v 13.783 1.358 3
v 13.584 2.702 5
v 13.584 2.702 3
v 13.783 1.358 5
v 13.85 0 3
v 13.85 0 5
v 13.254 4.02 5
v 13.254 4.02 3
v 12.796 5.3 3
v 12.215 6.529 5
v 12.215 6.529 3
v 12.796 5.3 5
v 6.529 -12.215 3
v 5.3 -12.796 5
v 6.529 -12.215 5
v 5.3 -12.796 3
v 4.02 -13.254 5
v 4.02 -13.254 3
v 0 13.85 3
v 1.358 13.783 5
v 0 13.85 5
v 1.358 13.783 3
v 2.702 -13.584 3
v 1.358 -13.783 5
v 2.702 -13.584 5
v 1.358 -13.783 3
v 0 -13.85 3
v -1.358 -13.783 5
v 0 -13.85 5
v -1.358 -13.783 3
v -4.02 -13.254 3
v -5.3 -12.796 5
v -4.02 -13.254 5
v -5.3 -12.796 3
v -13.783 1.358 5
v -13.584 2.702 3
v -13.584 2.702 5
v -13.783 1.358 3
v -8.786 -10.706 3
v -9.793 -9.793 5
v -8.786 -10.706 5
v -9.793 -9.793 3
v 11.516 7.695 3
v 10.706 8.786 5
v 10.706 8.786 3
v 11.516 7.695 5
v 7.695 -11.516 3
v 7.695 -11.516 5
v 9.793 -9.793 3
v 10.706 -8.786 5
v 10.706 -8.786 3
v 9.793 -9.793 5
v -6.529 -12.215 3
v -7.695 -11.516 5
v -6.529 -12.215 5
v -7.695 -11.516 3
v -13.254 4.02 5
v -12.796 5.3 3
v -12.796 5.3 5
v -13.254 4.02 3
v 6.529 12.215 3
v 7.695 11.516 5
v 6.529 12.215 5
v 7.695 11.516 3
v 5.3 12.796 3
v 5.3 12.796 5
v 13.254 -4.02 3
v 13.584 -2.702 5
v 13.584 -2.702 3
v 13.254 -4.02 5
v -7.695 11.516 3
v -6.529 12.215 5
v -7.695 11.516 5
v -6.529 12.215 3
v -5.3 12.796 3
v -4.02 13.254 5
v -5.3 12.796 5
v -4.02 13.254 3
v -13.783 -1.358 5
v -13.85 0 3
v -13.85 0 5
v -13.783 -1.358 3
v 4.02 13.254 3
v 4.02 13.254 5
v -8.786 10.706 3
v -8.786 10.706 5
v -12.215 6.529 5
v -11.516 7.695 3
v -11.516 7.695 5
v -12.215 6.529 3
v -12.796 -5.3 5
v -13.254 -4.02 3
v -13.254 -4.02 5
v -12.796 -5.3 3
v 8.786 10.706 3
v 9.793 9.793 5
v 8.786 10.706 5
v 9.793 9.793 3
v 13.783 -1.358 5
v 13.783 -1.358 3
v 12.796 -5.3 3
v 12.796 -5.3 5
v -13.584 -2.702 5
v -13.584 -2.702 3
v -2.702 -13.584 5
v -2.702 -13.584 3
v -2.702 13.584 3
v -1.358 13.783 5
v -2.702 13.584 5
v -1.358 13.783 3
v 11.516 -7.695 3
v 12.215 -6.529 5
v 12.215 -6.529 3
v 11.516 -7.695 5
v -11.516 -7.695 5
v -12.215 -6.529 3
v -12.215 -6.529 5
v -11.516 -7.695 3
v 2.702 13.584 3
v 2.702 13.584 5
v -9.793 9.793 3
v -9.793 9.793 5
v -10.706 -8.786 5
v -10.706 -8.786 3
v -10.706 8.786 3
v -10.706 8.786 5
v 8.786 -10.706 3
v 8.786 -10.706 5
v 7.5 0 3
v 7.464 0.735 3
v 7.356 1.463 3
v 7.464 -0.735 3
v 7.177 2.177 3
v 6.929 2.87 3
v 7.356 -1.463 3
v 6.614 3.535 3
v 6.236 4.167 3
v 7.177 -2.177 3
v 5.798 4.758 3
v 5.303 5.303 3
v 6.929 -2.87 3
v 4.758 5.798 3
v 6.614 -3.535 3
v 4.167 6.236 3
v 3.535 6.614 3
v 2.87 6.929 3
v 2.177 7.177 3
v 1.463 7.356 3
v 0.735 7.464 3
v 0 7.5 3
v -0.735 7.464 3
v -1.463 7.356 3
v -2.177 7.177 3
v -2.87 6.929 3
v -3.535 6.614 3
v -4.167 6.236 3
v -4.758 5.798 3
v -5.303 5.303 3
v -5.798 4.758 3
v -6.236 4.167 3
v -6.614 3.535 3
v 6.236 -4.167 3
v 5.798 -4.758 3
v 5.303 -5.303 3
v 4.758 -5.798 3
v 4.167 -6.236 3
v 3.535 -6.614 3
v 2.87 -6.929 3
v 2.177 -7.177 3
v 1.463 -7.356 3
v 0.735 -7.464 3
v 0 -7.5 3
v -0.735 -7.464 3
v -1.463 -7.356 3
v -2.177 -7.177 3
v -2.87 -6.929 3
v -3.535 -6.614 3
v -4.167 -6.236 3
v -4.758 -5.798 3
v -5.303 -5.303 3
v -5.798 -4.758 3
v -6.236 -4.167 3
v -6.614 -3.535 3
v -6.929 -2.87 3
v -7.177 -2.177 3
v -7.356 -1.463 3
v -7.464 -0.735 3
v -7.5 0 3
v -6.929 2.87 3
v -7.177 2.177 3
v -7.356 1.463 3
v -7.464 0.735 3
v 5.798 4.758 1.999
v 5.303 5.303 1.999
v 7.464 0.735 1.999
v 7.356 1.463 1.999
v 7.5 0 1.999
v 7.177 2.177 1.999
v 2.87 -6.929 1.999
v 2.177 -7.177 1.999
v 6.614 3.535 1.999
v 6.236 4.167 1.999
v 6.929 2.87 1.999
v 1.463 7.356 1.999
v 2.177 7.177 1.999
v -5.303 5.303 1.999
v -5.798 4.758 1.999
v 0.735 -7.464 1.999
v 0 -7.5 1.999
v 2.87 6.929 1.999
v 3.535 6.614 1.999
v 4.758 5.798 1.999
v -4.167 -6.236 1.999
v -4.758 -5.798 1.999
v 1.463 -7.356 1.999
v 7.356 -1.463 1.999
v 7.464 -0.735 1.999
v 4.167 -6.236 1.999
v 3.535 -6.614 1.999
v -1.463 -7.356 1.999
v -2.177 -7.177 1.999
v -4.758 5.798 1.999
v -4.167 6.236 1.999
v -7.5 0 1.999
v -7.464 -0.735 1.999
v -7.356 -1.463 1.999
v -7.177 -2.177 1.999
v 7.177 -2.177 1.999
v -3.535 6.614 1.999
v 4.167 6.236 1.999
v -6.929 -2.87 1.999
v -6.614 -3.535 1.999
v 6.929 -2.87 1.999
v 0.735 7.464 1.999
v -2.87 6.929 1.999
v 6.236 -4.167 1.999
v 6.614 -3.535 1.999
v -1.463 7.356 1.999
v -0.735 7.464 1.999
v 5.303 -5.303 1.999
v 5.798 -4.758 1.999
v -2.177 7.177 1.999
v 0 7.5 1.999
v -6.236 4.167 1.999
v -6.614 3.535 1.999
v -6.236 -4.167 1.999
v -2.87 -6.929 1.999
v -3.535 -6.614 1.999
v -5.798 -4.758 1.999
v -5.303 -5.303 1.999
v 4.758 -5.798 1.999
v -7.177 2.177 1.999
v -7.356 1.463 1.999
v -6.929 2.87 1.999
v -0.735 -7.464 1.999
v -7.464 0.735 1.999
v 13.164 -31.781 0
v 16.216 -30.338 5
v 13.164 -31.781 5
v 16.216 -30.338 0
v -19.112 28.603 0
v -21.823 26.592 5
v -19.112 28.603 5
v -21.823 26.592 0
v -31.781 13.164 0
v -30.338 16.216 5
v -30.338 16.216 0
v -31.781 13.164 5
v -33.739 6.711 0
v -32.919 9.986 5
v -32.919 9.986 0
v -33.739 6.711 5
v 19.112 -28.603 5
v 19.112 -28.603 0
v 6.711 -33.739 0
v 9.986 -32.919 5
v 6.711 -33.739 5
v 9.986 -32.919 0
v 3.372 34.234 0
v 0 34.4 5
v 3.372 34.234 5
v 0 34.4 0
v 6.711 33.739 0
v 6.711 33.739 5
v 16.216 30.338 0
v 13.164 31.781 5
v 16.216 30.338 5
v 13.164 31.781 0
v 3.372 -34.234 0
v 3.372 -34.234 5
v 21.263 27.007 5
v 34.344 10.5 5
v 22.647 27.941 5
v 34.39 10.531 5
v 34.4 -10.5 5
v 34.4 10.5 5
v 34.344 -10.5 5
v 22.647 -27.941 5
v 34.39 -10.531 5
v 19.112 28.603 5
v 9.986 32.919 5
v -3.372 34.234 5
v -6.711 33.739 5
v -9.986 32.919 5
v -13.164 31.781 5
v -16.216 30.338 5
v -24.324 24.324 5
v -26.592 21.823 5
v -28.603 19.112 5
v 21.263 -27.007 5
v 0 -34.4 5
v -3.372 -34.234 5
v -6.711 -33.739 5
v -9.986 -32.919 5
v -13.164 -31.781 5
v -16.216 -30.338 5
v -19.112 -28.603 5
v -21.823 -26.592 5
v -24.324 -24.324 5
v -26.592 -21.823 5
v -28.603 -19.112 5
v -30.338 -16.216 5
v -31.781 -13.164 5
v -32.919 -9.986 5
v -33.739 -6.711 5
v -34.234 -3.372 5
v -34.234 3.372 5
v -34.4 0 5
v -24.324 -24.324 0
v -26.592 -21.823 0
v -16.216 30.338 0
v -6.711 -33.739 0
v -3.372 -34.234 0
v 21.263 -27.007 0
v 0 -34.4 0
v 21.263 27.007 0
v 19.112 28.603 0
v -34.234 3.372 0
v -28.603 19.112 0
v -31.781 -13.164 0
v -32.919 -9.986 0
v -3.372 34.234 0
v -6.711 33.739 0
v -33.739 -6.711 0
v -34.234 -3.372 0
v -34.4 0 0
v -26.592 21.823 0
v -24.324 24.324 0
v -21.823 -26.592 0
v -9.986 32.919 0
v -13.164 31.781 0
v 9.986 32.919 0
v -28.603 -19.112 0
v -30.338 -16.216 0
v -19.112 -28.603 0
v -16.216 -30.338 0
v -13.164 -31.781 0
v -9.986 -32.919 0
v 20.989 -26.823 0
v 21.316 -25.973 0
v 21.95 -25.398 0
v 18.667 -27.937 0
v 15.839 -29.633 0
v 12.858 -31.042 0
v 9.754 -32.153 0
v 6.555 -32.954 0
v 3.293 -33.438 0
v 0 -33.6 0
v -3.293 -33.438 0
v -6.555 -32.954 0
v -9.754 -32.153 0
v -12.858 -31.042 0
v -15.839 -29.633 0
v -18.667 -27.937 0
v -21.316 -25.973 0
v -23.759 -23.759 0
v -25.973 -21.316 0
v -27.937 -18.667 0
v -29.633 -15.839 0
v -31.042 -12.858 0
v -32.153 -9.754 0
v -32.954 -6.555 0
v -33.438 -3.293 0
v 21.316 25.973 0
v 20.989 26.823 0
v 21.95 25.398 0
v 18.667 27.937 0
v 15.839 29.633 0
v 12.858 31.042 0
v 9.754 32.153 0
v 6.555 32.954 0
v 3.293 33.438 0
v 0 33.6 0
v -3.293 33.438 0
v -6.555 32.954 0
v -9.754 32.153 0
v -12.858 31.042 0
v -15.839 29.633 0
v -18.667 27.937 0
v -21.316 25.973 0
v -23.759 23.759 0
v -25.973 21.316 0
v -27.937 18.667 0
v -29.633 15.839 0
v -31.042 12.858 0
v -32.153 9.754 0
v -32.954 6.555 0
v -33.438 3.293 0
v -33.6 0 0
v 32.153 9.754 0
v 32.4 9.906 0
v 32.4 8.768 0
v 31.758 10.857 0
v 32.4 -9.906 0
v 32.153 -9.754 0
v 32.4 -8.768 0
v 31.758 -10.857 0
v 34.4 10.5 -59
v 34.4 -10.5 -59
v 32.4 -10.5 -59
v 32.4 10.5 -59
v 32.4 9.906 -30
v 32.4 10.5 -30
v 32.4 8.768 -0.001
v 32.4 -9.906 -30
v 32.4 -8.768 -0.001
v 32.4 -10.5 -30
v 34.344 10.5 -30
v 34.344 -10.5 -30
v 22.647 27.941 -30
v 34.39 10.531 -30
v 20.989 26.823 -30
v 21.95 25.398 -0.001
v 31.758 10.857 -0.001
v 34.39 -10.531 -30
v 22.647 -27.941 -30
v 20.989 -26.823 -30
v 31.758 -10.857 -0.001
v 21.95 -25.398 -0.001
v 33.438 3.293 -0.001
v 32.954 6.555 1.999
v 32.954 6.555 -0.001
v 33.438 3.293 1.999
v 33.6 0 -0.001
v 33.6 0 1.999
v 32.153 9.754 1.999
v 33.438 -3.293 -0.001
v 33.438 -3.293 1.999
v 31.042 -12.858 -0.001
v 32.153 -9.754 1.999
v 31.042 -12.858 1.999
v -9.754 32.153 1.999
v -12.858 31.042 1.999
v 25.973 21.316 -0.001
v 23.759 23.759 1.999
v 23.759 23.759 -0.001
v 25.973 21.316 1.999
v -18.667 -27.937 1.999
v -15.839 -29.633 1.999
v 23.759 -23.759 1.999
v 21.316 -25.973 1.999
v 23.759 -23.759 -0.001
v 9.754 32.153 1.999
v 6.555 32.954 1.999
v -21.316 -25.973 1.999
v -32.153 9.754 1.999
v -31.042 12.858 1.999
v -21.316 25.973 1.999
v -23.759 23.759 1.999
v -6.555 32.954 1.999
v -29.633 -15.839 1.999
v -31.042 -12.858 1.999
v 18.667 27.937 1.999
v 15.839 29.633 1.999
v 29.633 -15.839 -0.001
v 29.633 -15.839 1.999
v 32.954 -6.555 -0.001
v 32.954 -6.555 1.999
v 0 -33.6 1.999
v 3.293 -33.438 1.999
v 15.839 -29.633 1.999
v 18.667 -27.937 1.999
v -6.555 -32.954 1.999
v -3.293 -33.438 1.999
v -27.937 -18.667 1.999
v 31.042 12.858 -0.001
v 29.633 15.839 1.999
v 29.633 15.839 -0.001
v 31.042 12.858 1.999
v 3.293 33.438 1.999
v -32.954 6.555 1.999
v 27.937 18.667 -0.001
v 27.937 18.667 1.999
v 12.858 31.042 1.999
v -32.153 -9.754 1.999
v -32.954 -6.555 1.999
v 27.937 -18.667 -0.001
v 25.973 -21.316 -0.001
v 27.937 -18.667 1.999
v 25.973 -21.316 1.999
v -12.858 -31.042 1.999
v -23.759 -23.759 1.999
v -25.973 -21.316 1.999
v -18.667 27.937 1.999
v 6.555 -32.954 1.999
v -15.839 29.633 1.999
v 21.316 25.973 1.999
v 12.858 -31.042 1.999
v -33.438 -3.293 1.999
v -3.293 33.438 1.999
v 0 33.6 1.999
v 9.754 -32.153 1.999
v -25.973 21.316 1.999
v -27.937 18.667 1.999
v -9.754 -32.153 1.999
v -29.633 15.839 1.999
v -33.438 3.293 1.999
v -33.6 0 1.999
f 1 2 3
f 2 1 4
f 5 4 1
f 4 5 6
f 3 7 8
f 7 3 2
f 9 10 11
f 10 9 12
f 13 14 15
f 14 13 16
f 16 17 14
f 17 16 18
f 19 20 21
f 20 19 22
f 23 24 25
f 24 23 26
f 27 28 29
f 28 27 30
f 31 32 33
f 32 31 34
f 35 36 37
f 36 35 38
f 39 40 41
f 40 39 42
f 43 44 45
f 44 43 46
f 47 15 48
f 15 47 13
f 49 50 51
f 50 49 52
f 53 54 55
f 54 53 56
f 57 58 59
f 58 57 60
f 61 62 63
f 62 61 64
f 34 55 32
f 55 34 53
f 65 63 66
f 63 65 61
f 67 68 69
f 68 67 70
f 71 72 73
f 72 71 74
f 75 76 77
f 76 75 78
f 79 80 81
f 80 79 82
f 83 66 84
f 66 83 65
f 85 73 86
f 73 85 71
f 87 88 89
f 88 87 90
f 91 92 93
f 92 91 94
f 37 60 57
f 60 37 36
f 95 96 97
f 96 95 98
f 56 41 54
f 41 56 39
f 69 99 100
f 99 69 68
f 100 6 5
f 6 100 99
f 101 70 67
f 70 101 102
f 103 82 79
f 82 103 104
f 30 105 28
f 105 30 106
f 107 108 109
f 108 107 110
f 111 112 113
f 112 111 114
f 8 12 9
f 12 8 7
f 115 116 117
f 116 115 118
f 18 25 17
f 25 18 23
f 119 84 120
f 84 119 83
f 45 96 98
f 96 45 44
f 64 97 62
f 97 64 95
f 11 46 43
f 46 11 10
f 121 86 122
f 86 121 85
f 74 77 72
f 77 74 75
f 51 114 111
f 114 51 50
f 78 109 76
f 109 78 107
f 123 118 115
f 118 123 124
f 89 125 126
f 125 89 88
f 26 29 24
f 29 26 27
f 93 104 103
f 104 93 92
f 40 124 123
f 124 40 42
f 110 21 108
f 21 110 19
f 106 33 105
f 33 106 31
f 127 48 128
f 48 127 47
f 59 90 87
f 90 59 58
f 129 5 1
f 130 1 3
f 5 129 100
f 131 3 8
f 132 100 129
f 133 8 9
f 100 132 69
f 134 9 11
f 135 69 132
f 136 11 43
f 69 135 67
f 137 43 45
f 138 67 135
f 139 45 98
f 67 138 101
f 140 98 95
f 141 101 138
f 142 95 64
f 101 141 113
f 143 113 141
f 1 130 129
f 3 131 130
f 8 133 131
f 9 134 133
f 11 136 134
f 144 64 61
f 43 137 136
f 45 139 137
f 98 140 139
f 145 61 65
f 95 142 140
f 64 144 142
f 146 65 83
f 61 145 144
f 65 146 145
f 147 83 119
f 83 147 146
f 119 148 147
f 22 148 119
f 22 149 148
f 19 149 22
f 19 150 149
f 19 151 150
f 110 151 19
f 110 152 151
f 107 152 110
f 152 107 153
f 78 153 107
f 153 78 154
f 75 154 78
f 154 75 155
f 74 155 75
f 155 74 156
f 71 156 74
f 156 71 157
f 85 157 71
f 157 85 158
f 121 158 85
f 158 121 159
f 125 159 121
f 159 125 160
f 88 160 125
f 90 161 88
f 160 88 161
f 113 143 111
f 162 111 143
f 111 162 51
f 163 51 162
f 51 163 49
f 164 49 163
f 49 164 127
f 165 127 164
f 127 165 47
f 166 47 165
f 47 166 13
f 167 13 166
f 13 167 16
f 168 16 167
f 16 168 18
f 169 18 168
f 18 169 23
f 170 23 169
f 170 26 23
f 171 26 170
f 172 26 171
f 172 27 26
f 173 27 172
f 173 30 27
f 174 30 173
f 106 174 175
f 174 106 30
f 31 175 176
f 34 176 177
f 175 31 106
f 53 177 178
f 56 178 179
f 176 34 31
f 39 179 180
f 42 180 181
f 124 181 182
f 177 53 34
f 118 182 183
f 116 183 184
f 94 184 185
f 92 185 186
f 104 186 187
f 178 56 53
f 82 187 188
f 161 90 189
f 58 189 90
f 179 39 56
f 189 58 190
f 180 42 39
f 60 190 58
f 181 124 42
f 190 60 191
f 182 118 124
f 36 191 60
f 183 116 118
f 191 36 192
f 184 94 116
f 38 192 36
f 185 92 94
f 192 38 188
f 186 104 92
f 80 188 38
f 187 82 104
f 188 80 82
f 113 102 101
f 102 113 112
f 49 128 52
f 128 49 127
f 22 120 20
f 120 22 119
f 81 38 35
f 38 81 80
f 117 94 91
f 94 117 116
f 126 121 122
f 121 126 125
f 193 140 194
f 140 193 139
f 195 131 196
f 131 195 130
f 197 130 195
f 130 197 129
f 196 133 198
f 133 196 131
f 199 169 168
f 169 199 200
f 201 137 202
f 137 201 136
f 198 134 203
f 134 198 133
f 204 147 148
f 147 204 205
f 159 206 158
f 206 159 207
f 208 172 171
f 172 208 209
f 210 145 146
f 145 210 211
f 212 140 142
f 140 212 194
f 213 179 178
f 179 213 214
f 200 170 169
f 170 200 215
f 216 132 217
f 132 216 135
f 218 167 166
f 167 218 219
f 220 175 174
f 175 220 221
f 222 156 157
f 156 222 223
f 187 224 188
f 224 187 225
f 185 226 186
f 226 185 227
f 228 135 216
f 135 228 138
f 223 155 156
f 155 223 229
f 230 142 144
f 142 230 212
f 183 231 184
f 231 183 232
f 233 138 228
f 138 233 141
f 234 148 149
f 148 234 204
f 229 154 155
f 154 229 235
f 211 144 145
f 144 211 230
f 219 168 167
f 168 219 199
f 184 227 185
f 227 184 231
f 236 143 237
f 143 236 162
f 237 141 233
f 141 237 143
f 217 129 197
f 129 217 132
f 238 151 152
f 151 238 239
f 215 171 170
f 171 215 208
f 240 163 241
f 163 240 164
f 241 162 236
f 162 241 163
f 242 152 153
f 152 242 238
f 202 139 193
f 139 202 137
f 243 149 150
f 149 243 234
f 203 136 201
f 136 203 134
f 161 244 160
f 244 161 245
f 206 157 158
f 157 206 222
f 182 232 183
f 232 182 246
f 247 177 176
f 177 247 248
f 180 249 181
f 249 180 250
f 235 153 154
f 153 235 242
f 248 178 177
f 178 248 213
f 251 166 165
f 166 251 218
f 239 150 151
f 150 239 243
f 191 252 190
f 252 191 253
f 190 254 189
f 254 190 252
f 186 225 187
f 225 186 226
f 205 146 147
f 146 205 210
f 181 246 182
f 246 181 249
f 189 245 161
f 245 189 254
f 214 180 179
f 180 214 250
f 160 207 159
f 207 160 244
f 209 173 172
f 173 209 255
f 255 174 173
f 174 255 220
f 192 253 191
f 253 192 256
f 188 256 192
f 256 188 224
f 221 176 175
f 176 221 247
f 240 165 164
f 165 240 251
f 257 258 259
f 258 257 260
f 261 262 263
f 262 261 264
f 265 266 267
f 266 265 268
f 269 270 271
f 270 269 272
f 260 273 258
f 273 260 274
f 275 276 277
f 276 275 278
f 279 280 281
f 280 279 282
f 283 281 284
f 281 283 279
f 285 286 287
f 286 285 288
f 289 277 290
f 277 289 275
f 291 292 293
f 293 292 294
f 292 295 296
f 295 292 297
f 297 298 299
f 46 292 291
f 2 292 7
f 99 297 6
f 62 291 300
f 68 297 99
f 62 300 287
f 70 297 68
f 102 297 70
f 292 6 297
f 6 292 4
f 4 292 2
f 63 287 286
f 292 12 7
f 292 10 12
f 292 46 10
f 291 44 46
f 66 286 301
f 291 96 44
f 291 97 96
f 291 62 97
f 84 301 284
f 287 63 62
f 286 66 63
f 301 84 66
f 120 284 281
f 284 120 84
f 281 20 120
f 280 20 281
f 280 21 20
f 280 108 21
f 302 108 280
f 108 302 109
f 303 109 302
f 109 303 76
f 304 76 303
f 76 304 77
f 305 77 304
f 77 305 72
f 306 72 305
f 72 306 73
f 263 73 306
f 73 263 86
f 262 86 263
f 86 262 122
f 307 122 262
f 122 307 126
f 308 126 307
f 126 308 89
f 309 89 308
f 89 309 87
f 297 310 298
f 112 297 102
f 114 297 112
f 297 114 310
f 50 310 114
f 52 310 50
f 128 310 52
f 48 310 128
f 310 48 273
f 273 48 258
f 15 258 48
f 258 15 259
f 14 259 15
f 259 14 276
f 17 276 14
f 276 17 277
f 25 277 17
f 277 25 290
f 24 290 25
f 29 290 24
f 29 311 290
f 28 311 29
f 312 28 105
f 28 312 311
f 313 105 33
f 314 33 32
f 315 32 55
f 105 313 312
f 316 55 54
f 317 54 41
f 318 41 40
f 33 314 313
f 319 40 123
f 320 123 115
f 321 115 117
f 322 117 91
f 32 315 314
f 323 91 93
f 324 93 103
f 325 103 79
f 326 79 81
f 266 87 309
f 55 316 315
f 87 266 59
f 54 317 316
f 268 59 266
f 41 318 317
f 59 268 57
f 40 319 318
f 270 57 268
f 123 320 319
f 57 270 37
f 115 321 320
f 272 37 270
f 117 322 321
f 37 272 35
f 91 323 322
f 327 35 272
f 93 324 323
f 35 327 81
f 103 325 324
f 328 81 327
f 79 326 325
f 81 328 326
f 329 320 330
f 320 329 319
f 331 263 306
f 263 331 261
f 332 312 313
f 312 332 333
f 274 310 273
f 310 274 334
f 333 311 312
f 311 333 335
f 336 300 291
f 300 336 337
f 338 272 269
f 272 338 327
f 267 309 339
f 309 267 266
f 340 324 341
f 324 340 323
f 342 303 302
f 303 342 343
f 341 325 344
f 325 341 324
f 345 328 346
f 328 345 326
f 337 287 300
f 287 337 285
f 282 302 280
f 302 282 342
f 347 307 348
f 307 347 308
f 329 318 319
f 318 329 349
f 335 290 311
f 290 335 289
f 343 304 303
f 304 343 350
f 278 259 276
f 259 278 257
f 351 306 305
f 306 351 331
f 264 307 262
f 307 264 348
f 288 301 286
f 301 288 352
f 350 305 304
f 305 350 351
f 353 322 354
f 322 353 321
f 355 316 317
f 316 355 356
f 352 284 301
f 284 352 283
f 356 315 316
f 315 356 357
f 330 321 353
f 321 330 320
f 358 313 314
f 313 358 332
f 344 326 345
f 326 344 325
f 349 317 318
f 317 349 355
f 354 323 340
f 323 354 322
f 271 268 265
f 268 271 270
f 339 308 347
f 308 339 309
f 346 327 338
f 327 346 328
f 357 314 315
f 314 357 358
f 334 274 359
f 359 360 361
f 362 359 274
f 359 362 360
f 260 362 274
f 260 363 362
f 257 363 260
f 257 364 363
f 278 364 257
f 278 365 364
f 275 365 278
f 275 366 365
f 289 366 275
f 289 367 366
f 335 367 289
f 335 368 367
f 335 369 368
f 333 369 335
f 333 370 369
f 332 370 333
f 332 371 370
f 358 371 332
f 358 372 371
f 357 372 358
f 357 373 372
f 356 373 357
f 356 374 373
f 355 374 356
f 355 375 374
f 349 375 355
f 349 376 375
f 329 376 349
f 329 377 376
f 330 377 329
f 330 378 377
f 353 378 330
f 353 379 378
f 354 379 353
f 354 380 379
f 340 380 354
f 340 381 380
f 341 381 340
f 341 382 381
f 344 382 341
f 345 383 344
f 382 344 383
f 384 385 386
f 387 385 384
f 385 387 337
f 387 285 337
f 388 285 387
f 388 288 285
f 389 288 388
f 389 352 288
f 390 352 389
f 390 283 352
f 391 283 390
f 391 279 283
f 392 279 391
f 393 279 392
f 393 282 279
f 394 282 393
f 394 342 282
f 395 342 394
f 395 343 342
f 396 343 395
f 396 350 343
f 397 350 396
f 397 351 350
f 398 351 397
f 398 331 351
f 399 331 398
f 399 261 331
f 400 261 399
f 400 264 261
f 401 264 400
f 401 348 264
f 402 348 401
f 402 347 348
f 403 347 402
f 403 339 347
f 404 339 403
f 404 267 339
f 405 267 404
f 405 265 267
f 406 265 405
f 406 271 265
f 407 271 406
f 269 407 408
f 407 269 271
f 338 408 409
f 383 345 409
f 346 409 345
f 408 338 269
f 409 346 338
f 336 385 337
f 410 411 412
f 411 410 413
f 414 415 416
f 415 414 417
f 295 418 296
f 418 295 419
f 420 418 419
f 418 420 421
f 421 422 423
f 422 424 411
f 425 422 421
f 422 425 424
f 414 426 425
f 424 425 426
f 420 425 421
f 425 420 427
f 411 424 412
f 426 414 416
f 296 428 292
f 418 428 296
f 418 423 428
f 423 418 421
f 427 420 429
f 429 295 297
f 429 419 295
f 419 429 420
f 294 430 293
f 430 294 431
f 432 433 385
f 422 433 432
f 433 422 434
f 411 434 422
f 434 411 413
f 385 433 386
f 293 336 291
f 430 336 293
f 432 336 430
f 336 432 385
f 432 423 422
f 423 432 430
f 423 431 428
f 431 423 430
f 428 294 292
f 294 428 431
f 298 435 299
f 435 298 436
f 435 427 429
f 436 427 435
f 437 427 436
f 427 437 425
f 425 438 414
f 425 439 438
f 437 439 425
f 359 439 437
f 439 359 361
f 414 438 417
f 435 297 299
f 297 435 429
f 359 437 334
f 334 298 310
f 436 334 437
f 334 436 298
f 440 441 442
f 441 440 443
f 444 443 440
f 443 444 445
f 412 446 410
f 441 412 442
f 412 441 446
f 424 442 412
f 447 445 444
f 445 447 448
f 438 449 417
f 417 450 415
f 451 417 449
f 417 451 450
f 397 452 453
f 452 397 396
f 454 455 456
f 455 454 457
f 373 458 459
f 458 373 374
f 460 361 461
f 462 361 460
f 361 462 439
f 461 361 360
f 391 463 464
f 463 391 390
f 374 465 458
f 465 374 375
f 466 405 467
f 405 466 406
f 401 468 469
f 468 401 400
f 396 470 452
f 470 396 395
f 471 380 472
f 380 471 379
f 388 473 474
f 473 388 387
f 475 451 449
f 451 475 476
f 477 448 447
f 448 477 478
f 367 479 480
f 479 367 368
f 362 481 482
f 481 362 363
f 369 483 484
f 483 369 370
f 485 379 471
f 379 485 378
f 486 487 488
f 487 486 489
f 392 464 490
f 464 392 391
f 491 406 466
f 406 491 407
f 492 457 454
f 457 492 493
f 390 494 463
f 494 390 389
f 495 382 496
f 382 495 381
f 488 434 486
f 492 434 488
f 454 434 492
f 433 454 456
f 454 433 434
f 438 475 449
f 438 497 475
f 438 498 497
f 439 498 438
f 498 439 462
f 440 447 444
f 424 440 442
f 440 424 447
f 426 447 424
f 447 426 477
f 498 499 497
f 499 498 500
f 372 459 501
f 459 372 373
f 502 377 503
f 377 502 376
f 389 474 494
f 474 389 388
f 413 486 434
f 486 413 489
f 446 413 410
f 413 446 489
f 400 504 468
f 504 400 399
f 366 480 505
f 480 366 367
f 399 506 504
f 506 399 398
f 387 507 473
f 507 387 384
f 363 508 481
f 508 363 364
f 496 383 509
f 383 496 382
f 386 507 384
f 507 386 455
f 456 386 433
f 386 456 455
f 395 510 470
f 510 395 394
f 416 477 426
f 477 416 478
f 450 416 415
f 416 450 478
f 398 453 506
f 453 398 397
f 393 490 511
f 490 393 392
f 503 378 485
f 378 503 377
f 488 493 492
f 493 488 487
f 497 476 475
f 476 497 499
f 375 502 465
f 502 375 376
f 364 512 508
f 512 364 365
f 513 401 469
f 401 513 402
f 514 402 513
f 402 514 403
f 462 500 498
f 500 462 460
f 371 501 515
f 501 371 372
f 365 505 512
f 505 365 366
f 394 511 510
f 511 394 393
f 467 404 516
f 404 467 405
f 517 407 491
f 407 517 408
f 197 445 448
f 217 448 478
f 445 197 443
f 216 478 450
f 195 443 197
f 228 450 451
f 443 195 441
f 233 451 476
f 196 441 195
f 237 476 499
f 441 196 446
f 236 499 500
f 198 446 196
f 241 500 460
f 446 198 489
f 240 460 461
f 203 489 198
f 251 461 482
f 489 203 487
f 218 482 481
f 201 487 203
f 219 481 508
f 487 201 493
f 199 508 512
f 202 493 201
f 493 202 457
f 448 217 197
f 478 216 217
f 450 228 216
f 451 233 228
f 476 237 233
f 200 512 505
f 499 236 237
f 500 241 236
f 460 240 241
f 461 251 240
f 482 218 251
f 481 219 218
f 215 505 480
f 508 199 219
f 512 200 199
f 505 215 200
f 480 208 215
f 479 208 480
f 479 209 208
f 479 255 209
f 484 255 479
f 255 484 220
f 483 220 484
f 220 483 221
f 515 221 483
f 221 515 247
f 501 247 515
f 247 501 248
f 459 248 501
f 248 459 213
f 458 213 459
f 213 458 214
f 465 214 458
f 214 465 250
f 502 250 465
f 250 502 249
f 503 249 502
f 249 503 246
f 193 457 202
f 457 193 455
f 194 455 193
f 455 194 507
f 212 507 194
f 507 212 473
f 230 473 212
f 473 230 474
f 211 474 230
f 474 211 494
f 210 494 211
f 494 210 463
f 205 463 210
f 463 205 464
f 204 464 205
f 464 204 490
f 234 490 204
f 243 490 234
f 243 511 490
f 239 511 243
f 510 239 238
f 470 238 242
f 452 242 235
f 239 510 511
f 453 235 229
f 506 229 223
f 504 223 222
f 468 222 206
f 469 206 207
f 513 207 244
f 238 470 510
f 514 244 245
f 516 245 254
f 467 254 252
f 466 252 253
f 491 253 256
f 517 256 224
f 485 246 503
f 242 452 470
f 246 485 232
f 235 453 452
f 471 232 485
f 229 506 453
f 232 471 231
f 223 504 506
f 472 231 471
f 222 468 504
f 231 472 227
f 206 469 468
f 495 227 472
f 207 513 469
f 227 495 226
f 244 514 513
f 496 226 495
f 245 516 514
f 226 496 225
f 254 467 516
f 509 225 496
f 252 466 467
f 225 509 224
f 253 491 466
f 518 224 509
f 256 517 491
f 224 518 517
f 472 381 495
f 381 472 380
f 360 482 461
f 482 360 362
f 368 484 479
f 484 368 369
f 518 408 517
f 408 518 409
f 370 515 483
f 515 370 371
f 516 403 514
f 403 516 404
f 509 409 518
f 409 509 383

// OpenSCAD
difference() {
	disque();
	translate([0,0,3])
		atomiseur();
}


module atomiseur() {
	d = 27.7;
	h = 8;
	hole_d = 15;
	hole_h = 30;
	union() {
		cylinder(h,d/2,d/2, $fn=64);
		translate([0,0,-hole_h+1])
			cylinder(hole_h, hole_d/2, hole_d/2, $fn=64);
	}
}

module side() {
	
}


module disque() {
	disque_d = 67.2;
	disque_h = 5;

	side_e = 2;
	side_h = 61 + disque_h -2;
	side_h_bis = 35;
	side_l = 21;
	
	difference() {
		union() {
			cylinder(disque_h,disque_d/2+.8, disque_d/2+.8, $fn=64);
			translate([disque_d/2+.8-side_e,-side_l/2,-side_h+disque_h])
				cube([side_e,side_l, side_h]);
			rotate([0,0,34])
				translate([disque_d/2+.8-side_e,-side_l/2,-side_h_bis+disque_h])
					cube([side_e,side_l, side_h_bis]);
			rotate([0,0,-34])
				translate([disque_d/2+.8-side_e,-side_l/2,-side_h_bis+disque_h])
					cube([side_e,side_l, side_h_bis]);

		}
		translate([0,0,-0.001])
			cylinder(2,disque_d/2, disque_d/2, $fn=64);
	}
}

module pot() {
	d_bas = 52.5;
	d_haut = 61;
	hauteur = 60;

	difference() {
		cylinder(hauteur+.8,d_bas/2+.8, d_haut/2+.8, $fn=64);
		translate([0,0,.8])
			cylinder(hauteur+.8,d_bas/2, d_haut/2, $fn=64);
		translate([0,0,hauteur/2])
			cube([20, d_haut+20, hauteur-20], true);
	}
}
